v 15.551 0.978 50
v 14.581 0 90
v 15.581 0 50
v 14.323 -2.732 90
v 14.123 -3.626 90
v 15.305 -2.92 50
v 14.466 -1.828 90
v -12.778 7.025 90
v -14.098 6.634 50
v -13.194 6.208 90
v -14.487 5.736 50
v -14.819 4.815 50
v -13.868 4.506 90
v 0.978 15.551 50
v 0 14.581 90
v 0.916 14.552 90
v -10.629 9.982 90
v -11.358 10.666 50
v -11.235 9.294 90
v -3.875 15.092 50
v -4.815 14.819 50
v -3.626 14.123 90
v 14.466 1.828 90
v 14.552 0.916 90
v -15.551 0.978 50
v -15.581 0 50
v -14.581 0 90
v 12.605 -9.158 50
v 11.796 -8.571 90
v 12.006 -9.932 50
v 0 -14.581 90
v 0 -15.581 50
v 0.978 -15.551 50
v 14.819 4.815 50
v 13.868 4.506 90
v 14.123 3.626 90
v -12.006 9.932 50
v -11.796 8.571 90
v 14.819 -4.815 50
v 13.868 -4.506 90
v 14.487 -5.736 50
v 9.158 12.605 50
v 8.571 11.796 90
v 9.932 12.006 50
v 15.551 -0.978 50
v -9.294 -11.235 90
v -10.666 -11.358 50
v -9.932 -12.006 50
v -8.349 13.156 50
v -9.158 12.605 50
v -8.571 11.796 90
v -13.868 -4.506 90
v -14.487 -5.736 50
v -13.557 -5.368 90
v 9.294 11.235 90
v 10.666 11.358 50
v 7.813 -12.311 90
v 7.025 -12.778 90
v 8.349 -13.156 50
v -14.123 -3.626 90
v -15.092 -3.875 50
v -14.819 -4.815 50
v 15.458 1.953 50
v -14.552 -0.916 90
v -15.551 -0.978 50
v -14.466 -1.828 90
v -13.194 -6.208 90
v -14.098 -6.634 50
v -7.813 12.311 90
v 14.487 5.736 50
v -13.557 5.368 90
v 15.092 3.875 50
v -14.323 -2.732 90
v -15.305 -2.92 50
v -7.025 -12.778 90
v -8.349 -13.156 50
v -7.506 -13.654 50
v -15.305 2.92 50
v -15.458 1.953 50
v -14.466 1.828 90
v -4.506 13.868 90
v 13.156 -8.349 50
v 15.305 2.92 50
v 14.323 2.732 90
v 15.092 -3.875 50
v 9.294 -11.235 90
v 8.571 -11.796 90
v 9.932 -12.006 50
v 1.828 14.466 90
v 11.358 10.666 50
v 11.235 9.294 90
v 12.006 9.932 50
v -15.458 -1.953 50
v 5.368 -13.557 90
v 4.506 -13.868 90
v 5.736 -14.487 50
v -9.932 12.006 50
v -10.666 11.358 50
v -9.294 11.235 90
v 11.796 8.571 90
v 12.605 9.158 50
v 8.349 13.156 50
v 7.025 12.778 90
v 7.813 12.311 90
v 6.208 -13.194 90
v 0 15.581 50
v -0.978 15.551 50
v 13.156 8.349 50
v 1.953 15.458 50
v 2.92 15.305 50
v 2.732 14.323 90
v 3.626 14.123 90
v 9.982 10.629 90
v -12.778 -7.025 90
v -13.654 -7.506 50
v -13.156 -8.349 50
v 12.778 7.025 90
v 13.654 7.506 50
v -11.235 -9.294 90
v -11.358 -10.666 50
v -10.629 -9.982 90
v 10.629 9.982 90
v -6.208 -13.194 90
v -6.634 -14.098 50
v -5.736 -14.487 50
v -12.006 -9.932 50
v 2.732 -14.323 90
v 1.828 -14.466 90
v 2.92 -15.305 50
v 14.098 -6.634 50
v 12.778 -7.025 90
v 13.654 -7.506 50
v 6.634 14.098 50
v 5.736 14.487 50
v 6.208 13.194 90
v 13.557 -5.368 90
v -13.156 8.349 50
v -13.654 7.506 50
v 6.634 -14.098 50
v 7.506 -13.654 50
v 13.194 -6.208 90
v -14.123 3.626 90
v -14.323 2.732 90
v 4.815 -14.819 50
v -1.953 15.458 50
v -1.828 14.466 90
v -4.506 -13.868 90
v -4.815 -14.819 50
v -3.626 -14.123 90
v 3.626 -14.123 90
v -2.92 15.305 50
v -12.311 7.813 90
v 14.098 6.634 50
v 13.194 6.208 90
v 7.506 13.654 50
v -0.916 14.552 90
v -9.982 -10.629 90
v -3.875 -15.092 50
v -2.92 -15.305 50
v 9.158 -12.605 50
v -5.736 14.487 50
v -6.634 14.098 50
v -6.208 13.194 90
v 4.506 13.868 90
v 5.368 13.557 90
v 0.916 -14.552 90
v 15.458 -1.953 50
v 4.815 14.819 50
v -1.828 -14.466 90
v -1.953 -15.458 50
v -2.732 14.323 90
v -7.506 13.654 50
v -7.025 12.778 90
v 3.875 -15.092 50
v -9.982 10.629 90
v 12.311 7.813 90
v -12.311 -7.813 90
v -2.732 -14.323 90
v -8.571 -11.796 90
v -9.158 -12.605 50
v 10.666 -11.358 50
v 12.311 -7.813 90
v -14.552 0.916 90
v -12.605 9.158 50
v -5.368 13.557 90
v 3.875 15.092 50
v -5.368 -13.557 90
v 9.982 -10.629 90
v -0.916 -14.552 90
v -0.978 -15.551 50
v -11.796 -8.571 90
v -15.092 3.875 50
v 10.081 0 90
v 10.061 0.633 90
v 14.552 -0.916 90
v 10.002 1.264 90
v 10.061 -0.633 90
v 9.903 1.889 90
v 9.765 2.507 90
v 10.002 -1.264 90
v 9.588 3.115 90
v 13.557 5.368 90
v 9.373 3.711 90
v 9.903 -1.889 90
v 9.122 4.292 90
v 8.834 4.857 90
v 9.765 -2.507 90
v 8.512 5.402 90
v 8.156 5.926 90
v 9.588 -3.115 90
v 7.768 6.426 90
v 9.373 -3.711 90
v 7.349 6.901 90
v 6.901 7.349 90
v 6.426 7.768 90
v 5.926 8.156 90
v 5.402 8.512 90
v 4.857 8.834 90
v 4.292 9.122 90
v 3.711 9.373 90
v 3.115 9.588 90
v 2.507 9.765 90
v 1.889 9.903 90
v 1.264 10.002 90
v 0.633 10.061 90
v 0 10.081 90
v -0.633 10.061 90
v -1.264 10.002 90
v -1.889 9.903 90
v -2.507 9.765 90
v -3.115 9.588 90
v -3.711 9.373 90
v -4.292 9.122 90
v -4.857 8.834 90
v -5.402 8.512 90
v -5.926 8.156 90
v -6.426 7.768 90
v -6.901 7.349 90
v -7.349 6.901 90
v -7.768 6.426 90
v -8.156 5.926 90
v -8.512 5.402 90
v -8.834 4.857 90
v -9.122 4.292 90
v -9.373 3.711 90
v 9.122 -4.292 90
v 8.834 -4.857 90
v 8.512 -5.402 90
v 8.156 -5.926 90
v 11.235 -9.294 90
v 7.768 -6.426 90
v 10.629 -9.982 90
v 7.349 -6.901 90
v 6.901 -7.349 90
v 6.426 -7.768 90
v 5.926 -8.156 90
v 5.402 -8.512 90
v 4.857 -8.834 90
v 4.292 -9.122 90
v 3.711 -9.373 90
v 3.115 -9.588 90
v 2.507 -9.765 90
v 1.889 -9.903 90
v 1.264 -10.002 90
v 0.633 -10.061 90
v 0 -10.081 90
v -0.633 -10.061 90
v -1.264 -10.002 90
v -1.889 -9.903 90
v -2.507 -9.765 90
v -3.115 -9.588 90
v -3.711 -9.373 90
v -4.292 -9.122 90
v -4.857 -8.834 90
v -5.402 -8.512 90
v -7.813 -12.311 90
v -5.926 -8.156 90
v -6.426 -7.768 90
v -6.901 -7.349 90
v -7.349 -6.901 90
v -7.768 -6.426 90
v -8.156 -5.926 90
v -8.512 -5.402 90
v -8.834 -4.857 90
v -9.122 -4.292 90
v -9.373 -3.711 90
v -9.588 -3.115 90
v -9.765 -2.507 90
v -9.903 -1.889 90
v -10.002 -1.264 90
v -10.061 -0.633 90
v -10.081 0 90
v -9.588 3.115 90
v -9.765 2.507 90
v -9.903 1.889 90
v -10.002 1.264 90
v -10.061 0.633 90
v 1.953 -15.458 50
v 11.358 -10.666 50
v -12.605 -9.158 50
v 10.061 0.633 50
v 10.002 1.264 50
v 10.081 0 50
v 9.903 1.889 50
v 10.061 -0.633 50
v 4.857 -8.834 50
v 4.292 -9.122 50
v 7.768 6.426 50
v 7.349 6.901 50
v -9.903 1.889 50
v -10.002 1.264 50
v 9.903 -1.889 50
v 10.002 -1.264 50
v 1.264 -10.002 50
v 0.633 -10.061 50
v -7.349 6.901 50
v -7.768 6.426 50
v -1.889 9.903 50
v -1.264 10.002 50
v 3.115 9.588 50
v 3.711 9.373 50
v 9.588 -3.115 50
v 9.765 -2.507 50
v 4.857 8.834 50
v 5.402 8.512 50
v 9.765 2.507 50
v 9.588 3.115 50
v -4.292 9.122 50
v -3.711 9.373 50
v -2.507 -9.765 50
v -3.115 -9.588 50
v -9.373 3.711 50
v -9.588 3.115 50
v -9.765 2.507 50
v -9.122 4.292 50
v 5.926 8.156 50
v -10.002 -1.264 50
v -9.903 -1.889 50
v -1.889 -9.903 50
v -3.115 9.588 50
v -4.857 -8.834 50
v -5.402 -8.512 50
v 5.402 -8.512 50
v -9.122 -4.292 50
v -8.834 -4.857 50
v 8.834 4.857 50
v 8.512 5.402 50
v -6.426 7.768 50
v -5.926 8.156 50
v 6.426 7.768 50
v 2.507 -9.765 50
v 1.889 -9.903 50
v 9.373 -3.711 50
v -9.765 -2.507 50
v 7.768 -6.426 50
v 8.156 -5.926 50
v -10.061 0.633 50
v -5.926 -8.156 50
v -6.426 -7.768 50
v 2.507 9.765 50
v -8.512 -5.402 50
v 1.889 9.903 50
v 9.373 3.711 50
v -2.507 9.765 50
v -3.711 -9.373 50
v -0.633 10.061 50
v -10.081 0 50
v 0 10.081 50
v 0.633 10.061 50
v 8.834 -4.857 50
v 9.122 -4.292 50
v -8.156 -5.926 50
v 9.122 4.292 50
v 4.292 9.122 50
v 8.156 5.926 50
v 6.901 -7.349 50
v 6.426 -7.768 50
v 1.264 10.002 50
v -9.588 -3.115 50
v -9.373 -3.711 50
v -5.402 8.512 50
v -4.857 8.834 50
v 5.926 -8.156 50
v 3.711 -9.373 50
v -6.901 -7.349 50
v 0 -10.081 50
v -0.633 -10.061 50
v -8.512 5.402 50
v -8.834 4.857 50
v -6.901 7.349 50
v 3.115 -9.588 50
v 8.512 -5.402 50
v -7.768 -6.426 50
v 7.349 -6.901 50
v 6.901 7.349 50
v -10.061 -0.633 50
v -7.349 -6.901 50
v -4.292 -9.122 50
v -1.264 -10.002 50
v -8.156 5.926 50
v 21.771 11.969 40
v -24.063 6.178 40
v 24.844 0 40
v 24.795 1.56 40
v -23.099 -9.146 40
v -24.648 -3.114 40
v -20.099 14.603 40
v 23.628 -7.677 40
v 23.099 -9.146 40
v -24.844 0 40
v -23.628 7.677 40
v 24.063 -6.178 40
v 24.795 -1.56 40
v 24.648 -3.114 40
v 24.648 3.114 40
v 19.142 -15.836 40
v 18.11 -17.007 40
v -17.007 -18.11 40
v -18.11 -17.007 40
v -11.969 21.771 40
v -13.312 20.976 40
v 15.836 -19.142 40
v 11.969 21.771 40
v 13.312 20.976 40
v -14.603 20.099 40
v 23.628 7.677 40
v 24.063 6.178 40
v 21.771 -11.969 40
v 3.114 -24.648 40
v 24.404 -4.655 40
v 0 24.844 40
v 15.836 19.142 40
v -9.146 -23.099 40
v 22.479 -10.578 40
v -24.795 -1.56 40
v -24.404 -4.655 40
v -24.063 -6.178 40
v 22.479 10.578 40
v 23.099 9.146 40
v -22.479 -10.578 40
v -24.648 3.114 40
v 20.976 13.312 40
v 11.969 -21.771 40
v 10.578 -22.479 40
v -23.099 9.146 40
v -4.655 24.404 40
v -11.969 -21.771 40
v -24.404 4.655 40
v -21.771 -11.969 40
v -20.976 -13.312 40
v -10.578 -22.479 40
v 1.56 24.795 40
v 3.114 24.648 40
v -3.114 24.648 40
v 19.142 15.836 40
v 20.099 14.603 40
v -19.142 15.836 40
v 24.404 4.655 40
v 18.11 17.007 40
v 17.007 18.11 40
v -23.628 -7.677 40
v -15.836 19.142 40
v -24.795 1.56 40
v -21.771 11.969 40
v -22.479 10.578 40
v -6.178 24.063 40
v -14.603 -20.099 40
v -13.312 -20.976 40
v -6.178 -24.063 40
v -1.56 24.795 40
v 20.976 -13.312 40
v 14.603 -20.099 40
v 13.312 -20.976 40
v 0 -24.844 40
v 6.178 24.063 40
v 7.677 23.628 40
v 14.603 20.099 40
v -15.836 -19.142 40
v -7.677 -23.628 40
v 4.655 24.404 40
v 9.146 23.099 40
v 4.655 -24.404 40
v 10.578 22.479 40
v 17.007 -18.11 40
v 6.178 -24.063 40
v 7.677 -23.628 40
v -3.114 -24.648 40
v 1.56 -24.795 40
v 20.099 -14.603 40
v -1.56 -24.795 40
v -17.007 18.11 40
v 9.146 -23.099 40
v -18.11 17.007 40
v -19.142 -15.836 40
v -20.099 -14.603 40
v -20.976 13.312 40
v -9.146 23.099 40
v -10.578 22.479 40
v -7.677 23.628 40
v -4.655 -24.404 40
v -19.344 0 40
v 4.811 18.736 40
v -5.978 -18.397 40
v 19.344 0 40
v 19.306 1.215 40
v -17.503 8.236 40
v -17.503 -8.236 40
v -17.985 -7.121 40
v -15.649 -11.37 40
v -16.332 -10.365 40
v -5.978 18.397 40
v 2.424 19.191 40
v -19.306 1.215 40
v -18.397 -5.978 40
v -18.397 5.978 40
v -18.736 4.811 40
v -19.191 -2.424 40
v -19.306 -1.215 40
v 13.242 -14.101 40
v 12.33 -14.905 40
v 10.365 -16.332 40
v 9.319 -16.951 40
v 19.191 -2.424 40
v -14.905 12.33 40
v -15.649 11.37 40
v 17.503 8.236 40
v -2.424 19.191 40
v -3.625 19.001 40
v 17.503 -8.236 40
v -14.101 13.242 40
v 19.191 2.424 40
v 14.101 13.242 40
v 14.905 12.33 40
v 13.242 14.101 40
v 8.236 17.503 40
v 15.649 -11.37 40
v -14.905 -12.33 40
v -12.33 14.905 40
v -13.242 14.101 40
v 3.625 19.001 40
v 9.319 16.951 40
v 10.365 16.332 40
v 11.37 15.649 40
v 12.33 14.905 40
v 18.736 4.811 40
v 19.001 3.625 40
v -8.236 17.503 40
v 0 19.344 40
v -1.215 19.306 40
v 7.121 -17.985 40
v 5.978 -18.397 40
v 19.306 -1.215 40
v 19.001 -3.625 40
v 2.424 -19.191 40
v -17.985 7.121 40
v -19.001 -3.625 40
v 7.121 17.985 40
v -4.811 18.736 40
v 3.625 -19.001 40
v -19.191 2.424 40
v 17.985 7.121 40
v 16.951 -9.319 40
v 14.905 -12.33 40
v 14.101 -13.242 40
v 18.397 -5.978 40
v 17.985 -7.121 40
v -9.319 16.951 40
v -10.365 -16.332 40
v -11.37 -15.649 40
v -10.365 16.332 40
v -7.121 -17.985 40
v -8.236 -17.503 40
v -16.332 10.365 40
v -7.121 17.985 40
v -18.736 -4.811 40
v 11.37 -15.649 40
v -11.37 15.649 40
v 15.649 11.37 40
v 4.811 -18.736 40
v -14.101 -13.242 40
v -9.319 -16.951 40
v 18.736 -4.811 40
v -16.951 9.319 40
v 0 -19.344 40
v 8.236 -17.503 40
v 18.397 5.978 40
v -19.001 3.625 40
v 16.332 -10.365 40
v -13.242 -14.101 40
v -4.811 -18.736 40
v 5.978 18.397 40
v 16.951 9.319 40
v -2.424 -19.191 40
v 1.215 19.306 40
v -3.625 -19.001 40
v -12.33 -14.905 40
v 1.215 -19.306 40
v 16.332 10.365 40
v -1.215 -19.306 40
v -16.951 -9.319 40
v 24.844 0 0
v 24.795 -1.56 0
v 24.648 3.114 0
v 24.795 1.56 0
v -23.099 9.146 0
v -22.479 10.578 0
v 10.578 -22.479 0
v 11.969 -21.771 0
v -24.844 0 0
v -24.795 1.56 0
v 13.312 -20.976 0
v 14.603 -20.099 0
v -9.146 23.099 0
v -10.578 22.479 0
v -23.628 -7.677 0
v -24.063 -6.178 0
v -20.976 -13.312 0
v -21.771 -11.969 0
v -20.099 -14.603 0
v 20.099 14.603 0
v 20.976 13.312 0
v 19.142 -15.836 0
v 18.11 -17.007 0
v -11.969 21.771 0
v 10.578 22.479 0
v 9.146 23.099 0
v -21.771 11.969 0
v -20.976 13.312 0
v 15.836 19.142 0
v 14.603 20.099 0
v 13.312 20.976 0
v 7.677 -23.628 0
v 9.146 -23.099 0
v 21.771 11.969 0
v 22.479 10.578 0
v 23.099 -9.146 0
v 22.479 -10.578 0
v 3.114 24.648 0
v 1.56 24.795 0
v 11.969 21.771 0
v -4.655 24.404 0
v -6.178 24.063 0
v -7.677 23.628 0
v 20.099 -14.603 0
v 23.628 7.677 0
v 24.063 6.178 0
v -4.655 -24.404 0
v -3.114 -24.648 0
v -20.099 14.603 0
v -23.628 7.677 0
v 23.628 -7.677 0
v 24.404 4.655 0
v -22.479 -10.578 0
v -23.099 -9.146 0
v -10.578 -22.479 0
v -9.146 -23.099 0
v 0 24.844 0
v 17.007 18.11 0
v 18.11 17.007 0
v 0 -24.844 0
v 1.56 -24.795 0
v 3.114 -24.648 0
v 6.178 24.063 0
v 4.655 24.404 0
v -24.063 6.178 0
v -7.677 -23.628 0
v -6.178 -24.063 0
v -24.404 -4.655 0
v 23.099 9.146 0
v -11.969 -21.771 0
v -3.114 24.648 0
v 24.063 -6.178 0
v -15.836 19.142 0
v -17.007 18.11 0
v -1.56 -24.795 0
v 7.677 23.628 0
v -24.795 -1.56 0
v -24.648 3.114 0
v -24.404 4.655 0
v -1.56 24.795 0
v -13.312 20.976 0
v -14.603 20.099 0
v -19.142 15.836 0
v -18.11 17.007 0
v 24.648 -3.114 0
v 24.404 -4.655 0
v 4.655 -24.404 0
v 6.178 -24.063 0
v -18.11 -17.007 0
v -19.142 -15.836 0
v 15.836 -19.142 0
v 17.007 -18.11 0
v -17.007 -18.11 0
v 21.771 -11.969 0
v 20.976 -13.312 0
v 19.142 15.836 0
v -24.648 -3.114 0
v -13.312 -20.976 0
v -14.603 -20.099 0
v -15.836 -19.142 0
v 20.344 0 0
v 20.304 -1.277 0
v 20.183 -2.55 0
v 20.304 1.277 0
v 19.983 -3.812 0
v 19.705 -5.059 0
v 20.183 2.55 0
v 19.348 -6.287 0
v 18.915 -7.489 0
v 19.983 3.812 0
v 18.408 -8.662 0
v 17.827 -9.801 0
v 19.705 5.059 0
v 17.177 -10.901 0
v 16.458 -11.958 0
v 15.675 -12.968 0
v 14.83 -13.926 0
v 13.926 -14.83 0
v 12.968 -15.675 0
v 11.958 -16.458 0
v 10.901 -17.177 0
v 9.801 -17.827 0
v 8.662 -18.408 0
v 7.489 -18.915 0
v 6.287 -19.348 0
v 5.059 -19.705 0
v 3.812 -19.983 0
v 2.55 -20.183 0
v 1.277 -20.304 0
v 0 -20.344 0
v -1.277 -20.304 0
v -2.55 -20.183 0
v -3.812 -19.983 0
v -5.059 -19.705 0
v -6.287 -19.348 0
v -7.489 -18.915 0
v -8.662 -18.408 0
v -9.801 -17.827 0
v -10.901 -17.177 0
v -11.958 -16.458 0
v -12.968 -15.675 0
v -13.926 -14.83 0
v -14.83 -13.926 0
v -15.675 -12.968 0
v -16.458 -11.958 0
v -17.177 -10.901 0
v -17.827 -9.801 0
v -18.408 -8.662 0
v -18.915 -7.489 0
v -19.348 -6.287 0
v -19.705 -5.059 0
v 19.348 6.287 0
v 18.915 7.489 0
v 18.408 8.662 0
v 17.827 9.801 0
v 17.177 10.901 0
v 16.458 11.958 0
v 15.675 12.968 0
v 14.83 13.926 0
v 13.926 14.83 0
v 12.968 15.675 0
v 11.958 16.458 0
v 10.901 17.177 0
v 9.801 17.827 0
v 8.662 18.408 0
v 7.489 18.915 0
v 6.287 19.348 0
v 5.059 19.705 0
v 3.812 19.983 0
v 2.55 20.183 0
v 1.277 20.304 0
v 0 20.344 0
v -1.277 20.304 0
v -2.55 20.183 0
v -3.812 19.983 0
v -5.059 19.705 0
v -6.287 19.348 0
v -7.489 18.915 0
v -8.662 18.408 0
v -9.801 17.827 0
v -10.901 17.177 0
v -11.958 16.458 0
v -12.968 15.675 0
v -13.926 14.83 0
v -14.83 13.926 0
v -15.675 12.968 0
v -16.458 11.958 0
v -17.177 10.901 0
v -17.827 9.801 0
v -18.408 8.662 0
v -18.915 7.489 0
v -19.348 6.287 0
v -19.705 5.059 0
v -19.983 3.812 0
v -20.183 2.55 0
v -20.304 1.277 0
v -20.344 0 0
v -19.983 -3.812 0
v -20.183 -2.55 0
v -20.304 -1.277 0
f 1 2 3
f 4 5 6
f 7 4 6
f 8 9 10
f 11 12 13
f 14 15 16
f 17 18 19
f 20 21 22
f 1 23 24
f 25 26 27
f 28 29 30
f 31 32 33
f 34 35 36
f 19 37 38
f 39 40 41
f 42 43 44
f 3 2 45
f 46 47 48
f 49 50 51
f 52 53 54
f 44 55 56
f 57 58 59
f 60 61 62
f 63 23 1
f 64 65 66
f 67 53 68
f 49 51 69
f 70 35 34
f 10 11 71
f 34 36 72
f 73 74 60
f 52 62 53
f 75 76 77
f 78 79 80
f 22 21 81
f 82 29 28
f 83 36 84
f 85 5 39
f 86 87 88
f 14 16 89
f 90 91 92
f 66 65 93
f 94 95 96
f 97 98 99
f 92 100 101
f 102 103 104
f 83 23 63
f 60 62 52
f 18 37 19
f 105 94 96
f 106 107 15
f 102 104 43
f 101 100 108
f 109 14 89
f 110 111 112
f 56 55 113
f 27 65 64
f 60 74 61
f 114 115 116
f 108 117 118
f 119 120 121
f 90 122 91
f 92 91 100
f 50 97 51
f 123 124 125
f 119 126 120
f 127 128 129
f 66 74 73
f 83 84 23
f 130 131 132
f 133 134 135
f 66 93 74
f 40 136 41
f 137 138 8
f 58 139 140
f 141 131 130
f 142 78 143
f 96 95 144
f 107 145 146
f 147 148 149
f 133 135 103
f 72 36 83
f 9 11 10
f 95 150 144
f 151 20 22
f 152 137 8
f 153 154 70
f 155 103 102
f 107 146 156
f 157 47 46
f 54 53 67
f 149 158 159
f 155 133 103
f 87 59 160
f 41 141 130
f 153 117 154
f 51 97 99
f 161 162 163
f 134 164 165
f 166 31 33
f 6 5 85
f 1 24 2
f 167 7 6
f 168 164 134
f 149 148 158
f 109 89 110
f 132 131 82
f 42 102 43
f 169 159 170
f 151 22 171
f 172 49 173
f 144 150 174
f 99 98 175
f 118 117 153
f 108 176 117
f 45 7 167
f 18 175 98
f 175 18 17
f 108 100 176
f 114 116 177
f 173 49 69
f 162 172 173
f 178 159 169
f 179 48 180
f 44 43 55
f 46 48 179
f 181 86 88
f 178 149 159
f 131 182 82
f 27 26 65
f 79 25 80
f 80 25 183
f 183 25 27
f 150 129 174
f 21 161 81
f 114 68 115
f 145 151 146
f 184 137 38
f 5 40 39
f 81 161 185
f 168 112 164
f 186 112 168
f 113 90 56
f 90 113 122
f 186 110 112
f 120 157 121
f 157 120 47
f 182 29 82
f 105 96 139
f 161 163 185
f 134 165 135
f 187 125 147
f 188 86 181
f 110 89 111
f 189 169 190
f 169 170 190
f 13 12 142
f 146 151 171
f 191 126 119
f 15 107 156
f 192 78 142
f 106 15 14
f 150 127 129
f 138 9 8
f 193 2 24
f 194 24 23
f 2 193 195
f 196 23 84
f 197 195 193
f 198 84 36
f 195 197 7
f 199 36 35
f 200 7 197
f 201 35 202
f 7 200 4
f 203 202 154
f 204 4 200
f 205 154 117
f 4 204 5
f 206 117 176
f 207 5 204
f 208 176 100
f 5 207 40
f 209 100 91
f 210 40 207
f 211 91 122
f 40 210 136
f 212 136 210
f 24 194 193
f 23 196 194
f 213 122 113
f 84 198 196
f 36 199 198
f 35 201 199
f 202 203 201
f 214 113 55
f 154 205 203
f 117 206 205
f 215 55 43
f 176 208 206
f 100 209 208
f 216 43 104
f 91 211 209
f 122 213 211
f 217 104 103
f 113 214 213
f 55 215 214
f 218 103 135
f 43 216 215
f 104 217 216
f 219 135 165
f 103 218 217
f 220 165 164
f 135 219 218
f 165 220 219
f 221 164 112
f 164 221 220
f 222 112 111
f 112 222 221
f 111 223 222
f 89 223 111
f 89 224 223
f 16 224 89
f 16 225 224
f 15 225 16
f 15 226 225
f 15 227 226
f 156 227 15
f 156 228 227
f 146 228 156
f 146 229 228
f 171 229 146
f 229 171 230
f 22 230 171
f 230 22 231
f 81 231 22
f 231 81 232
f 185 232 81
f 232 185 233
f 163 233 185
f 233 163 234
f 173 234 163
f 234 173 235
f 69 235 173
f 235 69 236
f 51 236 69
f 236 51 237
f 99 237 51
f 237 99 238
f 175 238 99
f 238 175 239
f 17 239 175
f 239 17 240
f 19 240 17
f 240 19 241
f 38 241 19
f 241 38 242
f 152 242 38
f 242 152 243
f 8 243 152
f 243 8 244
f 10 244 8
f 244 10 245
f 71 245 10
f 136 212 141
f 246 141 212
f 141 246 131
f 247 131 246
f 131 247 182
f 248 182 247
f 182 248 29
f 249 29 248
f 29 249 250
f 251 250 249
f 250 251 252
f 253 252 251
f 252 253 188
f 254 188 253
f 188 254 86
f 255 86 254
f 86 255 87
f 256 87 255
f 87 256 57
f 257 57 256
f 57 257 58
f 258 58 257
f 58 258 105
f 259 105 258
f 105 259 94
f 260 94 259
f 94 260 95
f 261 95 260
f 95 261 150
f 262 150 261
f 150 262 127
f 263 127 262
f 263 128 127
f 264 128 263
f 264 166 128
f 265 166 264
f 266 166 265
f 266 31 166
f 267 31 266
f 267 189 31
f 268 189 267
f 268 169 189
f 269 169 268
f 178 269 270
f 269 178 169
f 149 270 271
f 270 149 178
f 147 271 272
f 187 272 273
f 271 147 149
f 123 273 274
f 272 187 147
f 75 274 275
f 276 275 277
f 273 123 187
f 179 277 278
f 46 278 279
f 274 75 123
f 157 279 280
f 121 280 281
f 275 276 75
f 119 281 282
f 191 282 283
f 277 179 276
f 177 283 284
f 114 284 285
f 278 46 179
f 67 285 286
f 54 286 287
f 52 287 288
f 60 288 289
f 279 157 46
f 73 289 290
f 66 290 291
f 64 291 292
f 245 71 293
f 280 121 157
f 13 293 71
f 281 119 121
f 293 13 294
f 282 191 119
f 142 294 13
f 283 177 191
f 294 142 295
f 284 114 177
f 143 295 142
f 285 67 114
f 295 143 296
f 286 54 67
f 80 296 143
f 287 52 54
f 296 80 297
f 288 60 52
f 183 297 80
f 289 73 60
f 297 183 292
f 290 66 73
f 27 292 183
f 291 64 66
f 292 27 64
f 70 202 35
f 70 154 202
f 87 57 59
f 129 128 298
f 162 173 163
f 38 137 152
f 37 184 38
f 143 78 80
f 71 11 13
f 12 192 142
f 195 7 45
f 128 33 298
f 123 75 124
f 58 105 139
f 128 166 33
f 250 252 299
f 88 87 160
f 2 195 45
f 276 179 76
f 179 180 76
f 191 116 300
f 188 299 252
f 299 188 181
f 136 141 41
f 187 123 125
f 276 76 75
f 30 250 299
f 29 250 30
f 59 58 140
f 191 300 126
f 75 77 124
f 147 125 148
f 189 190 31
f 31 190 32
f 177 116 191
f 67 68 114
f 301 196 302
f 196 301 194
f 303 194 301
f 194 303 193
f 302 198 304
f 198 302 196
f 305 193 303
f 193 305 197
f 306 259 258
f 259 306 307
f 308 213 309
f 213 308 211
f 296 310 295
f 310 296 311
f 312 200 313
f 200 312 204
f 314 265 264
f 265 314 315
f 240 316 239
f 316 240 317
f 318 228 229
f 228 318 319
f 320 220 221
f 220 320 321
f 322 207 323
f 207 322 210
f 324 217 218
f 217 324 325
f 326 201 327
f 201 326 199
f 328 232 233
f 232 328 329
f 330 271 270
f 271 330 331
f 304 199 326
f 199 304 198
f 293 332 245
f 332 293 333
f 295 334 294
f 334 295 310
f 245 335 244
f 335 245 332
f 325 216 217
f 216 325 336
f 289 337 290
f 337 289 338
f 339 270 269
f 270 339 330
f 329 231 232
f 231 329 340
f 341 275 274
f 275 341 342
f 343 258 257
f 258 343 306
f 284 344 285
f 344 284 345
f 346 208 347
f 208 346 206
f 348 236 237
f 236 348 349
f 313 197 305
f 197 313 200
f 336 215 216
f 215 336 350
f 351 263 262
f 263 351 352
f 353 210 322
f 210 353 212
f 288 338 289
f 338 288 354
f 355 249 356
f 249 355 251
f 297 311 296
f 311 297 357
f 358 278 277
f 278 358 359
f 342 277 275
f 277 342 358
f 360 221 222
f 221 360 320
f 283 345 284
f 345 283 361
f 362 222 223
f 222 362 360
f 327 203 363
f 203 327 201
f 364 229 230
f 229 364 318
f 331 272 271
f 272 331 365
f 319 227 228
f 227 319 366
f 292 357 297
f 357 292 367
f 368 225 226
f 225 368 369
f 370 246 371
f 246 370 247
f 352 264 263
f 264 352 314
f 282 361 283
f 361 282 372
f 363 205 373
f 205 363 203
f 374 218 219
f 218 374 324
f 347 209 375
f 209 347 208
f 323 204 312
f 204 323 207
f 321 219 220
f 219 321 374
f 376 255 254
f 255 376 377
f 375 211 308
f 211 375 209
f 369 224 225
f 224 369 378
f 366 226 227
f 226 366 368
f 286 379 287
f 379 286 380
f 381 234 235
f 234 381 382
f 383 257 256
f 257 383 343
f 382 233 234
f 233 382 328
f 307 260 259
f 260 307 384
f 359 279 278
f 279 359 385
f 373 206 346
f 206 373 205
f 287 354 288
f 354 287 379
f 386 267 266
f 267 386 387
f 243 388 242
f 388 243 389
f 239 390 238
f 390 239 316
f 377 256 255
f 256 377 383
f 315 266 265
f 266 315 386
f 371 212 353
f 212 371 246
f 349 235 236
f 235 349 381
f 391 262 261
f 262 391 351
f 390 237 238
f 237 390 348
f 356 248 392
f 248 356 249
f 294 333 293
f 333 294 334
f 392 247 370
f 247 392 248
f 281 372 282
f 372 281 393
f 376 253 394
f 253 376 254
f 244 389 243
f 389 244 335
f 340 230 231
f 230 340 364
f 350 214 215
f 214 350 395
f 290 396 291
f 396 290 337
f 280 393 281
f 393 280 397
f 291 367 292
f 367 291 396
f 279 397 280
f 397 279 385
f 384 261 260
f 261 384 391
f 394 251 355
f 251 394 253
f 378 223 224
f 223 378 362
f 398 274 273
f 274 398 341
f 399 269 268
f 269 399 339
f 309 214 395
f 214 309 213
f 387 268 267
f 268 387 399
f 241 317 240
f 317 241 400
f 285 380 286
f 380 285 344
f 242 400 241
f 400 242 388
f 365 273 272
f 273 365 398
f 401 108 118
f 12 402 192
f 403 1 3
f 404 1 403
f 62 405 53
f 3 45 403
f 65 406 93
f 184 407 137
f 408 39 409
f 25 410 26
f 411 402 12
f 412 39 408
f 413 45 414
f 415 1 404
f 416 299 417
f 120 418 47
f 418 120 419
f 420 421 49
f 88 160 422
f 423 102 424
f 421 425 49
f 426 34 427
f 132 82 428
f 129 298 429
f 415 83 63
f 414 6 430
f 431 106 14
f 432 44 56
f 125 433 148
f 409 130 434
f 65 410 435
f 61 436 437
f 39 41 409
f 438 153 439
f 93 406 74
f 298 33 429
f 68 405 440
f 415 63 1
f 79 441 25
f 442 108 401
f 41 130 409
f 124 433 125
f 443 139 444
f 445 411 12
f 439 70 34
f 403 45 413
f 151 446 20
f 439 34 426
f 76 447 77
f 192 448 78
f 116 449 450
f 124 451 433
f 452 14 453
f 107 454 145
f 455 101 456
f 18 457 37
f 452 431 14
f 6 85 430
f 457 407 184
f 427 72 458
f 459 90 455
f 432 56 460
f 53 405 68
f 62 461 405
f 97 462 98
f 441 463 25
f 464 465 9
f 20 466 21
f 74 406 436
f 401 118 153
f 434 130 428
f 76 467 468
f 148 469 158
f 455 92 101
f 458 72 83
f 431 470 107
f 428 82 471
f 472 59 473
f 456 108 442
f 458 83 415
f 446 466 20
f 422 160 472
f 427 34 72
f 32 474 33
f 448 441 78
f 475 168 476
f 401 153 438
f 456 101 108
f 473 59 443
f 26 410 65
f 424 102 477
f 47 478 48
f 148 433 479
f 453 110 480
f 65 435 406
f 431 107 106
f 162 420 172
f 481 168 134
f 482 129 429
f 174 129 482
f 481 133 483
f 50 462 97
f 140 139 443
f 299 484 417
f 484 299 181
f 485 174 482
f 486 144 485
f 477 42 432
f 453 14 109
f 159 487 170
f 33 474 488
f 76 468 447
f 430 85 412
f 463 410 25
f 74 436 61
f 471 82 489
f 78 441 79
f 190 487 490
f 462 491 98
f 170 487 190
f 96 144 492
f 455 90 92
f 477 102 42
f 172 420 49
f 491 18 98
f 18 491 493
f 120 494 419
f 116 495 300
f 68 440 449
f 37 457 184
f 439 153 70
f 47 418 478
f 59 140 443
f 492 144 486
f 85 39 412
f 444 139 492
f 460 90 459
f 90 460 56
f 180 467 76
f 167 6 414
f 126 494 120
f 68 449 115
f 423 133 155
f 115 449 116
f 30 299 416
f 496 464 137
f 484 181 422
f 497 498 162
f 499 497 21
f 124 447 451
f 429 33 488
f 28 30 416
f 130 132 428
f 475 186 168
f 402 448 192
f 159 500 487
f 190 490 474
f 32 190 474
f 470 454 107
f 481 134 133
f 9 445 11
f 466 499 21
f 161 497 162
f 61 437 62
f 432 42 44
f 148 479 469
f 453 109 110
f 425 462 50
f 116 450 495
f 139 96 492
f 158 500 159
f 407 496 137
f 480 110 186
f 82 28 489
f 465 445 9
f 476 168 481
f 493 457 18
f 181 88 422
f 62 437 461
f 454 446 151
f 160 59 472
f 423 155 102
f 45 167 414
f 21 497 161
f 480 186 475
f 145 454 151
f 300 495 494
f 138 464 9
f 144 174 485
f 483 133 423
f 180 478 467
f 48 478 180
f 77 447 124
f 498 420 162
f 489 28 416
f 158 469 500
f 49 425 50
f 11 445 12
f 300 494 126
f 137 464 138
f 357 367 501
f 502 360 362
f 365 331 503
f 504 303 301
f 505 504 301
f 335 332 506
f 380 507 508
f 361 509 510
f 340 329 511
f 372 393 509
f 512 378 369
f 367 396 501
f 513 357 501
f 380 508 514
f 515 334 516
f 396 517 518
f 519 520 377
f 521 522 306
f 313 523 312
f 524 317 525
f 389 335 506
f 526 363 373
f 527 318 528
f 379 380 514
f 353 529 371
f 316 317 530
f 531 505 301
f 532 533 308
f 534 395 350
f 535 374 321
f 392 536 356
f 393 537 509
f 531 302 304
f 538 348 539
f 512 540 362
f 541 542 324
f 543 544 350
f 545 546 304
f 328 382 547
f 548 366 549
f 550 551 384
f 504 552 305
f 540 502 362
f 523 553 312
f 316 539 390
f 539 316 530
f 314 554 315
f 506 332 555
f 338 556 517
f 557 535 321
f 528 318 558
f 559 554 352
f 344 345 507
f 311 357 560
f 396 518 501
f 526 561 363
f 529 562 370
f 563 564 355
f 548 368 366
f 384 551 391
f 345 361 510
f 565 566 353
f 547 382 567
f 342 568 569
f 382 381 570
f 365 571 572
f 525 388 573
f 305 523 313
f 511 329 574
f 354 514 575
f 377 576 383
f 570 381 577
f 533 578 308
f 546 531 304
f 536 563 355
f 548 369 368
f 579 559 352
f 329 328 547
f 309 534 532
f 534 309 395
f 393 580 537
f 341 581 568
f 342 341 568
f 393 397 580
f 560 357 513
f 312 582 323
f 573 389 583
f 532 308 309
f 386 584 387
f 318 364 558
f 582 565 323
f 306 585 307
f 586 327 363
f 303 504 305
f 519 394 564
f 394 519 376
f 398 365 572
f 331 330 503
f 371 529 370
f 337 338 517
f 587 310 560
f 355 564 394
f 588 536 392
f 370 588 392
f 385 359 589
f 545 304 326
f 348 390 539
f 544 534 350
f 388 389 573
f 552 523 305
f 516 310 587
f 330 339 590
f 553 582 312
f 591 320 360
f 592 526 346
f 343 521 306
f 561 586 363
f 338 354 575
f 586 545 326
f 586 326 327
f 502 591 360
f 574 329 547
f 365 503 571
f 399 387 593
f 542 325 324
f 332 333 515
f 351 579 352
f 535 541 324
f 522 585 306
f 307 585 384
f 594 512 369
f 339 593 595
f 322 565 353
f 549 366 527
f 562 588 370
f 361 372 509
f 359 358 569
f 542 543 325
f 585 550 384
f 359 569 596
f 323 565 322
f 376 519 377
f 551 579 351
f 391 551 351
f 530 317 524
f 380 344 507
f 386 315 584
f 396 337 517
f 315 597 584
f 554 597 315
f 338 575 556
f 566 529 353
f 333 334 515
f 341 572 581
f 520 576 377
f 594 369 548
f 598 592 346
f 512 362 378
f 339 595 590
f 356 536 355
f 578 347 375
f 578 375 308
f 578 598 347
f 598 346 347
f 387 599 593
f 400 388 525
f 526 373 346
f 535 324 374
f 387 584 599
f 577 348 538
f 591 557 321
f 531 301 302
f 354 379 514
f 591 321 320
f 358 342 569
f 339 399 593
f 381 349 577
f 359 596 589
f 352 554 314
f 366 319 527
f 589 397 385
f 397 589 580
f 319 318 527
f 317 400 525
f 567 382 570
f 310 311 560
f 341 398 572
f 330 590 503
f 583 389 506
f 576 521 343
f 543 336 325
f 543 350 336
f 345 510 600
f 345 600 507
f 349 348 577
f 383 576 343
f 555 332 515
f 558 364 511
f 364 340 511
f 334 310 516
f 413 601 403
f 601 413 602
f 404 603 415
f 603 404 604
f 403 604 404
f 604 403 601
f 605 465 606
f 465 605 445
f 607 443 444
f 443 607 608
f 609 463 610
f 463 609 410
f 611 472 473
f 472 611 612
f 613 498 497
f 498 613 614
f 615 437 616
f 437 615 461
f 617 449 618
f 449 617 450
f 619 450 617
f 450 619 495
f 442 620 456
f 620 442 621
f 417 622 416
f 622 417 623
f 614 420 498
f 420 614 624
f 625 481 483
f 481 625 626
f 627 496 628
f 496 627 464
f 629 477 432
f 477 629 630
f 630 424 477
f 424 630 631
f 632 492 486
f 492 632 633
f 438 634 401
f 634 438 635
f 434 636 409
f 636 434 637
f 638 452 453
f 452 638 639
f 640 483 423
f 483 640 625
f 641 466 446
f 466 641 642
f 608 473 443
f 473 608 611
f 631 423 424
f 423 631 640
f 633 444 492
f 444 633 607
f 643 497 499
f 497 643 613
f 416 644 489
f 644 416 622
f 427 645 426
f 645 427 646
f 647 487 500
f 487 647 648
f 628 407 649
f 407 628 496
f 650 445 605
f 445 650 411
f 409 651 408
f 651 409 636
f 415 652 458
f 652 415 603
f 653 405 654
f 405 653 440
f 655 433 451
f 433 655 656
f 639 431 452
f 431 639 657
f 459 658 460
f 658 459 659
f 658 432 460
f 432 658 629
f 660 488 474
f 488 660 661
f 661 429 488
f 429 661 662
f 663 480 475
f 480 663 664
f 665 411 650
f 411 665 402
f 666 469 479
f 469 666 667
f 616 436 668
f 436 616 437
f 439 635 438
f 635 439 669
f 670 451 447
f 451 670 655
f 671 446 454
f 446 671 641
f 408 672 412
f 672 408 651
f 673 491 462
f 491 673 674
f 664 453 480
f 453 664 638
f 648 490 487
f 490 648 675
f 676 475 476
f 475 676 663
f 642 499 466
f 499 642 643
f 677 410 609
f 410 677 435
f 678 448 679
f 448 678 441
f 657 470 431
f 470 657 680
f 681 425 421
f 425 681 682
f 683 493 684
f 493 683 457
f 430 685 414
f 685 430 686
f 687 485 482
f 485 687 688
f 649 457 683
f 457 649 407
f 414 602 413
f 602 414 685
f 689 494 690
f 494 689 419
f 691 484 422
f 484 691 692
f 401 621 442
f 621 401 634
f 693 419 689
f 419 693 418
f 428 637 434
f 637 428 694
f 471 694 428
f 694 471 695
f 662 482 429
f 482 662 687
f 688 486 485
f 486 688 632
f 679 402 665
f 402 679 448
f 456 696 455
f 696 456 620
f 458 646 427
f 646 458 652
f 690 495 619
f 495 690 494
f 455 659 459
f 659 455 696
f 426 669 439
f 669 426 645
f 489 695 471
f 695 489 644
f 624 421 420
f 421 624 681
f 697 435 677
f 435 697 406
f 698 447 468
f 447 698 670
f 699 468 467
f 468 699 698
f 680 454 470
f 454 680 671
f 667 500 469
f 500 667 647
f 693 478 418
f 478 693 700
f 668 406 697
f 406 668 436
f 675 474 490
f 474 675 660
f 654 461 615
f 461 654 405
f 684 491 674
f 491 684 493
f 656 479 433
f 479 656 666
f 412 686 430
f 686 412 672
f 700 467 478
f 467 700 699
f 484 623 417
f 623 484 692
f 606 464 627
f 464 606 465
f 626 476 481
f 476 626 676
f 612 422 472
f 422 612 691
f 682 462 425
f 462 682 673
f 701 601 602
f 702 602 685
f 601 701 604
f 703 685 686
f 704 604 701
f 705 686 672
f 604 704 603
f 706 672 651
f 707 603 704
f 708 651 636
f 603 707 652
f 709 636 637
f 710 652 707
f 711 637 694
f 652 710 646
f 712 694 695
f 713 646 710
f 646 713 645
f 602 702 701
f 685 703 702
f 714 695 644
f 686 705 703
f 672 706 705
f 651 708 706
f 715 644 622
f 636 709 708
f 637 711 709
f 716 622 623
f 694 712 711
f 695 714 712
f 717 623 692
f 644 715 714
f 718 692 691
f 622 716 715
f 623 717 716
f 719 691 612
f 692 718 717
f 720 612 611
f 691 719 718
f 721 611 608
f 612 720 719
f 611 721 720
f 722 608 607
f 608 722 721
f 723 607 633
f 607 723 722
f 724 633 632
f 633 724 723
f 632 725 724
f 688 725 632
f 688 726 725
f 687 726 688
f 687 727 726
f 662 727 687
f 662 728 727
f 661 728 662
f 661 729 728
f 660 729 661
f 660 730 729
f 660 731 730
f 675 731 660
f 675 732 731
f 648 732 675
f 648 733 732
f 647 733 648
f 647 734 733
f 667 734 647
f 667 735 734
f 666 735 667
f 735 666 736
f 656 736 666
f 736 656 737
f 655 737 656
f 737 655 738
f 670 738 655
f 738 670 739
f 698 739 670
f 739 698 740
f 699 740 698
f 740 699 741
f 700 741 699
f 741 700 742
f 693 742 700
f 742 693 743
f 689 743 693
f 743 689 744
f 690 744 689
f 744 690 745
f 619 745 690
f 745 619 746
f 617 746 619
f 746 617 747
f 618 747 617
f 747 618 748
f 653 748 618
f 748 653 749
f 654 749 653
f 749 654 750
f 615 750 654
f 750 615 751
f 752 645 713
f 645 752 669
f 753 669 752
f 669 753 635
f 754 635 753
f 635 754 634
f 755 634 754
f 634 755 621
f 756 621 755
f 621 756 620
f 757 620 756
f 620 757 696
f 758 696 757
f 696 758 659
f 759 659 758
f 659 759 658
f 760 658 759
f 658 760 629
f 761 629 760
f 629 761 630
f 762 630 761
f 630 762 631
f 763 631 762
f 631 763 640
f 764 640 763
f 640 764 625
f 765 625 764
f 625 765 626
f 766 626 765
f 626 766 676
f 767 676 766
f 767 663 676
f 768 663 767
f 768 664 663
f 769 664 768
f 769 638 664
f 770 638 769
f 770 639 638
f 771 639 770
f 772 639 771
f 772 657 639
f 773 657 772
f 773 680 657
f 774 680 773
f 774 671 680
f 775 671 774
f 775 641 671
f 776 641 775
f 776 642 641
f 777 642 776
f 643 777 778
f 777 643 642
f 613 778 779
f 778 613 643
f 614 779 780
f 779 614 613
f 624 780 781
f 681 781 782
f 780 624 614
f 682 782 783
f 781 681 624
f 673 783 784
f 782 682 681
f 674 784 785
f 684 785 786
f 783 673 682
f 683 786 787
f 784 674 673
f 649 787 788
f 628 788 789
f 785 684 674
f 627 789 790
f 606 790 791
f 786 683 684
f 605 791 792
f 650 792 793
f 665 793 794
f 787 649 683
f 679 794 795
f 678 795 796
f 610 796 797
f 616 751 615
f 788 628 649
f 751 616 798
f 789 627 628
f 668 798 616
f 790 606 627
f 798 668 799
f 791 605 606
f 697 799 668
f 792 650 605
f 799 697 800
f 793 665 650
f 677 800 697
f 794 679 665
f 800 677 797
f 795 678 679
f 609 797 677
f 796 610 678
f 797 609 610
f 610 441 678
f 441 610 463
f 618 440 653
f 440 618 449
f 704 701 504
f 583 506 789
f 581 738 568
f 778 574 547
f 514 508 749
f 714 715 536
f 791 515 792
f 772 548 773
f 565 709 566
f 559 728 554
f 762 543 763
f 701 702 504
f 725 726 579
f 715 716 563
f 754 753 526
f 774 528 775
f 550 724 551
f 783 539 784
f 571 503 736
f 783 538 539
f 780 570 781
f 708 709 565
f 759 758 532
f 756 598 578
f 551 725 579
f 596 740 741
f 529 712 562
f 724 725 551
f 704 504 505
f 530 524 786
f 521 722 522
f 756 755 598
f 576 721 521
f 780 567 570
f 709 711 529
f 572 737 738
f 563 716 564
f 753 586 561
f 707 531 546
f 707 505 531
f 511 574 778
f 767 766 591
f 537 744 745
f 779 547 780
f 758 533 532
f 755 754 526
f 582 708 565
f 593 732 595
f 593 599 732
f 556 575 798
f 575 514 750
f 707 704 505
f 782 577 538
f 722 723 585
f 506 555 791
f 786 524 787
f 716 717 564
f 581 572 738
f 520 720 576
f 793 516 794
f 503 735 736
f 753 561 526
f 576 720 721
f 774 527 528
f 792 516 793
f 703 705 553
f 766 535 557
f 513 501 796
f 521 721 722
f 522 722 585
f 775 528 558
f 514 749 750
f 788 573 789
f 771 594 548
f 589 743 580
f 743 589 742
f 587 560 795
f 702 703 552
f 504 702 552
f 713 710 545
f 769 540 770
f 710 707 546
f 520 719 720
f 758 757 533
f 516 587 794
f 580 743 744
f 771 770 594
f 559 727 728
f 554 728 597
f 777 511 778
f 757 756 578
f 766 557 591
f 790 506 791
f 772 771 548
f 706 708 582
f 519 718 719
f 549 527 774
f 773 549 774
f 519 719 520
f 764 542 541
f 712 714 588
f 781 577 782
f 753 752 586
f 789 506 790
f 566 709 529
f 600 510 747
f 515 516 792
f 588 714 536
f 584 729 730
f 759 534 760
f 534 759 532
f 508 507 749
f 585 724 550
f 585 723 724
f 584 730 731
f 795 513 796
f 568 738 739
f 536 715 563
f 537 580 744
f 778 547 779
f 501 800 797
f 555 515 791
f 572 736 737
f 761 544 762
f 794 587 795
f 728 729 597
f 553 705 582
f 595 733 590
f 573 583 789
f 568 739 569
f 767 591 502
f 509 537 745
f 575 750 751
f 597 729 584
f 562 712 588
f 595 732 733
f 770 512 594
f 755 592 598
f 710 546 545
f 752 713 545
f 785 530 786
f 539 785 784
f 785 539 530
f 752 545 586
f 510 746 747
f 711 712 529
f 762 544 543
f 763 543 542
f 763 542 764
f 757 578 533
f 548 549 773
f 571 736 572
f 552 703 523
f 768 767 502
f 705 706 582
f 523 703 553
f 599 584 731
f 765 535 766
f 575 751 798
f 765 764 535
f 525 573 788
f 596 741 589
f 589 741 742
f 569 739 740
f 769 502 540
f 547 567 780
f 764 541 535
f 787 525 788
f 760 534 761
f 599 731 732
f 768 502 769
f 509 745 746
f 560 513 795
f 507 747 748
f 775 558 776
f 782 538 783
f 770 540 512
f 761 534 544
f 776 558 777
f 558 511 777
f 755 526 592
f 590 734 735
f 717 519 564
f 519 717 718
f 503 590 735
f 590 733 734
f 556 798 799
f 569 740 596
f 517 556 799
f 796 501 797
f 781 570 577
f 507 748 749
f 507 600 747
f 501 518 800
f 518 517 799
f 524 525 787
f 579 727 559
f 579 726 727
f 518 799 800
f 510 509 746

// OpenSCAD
/* [Basics] */

// Inner Diameter of Part A (mm)
part_a_inner_diameter = (1+3/16) * 25.4;

// Outer Diameter of Part B (mm)
part_b_outer_diameter = (1+9/16) * 25.4;

/* [Advanced] */

// Material Strength (mm)
material_strength = 10;

// How long is the slide on section per part? (mm)
slide_on_length = 40;

// How long is the connection section between the parts? (mm)
connection_length = 10;

// What is the slide on ramp for creating a tight fit? (mm)
slide_on_ramp = 1;

/* [Hidden] */
//  Number of fragments for rendering a circle
$fn = 100;

//projection(cut = true) rotate([90,0,0])
//projection(cut = false) rotate([90,0,0])
adapter(
    part_a_inner_diameter, 
    part_b_outer_diameter, 
    material_strength, 
    slide_on_length, 
    connection_length,
    slide_on_ramp
);


module adapter(partA, partB, strength, length, con_length, ramp) {
    union() {
        // Part A
        translate([0, 0, length + con_length]) {
            difference() {
                cylinder(length, d1 = partA + ramp, d2 = partA - ramp);
                cylinder(length, d1 = partA - strength, d2 = partA - strength);
            }
        }

        // Connection between Part A and Part B
        translate([0, 0, length]) {
            difference() {
                cylinder(con_length, d1 = partB + strength, d2 = partA + ramp);
                cylinder(con_length, d1 = partB - ramp, d2 = partA - strength);
            }
        }

        // Part B
        difference() {
            cylinder(length, d1 = partB + strength, d2 = partB + strength);
            cylinder(length, d1 = partB + ramp, d2 = partB - ramp);
        }
    }
}
